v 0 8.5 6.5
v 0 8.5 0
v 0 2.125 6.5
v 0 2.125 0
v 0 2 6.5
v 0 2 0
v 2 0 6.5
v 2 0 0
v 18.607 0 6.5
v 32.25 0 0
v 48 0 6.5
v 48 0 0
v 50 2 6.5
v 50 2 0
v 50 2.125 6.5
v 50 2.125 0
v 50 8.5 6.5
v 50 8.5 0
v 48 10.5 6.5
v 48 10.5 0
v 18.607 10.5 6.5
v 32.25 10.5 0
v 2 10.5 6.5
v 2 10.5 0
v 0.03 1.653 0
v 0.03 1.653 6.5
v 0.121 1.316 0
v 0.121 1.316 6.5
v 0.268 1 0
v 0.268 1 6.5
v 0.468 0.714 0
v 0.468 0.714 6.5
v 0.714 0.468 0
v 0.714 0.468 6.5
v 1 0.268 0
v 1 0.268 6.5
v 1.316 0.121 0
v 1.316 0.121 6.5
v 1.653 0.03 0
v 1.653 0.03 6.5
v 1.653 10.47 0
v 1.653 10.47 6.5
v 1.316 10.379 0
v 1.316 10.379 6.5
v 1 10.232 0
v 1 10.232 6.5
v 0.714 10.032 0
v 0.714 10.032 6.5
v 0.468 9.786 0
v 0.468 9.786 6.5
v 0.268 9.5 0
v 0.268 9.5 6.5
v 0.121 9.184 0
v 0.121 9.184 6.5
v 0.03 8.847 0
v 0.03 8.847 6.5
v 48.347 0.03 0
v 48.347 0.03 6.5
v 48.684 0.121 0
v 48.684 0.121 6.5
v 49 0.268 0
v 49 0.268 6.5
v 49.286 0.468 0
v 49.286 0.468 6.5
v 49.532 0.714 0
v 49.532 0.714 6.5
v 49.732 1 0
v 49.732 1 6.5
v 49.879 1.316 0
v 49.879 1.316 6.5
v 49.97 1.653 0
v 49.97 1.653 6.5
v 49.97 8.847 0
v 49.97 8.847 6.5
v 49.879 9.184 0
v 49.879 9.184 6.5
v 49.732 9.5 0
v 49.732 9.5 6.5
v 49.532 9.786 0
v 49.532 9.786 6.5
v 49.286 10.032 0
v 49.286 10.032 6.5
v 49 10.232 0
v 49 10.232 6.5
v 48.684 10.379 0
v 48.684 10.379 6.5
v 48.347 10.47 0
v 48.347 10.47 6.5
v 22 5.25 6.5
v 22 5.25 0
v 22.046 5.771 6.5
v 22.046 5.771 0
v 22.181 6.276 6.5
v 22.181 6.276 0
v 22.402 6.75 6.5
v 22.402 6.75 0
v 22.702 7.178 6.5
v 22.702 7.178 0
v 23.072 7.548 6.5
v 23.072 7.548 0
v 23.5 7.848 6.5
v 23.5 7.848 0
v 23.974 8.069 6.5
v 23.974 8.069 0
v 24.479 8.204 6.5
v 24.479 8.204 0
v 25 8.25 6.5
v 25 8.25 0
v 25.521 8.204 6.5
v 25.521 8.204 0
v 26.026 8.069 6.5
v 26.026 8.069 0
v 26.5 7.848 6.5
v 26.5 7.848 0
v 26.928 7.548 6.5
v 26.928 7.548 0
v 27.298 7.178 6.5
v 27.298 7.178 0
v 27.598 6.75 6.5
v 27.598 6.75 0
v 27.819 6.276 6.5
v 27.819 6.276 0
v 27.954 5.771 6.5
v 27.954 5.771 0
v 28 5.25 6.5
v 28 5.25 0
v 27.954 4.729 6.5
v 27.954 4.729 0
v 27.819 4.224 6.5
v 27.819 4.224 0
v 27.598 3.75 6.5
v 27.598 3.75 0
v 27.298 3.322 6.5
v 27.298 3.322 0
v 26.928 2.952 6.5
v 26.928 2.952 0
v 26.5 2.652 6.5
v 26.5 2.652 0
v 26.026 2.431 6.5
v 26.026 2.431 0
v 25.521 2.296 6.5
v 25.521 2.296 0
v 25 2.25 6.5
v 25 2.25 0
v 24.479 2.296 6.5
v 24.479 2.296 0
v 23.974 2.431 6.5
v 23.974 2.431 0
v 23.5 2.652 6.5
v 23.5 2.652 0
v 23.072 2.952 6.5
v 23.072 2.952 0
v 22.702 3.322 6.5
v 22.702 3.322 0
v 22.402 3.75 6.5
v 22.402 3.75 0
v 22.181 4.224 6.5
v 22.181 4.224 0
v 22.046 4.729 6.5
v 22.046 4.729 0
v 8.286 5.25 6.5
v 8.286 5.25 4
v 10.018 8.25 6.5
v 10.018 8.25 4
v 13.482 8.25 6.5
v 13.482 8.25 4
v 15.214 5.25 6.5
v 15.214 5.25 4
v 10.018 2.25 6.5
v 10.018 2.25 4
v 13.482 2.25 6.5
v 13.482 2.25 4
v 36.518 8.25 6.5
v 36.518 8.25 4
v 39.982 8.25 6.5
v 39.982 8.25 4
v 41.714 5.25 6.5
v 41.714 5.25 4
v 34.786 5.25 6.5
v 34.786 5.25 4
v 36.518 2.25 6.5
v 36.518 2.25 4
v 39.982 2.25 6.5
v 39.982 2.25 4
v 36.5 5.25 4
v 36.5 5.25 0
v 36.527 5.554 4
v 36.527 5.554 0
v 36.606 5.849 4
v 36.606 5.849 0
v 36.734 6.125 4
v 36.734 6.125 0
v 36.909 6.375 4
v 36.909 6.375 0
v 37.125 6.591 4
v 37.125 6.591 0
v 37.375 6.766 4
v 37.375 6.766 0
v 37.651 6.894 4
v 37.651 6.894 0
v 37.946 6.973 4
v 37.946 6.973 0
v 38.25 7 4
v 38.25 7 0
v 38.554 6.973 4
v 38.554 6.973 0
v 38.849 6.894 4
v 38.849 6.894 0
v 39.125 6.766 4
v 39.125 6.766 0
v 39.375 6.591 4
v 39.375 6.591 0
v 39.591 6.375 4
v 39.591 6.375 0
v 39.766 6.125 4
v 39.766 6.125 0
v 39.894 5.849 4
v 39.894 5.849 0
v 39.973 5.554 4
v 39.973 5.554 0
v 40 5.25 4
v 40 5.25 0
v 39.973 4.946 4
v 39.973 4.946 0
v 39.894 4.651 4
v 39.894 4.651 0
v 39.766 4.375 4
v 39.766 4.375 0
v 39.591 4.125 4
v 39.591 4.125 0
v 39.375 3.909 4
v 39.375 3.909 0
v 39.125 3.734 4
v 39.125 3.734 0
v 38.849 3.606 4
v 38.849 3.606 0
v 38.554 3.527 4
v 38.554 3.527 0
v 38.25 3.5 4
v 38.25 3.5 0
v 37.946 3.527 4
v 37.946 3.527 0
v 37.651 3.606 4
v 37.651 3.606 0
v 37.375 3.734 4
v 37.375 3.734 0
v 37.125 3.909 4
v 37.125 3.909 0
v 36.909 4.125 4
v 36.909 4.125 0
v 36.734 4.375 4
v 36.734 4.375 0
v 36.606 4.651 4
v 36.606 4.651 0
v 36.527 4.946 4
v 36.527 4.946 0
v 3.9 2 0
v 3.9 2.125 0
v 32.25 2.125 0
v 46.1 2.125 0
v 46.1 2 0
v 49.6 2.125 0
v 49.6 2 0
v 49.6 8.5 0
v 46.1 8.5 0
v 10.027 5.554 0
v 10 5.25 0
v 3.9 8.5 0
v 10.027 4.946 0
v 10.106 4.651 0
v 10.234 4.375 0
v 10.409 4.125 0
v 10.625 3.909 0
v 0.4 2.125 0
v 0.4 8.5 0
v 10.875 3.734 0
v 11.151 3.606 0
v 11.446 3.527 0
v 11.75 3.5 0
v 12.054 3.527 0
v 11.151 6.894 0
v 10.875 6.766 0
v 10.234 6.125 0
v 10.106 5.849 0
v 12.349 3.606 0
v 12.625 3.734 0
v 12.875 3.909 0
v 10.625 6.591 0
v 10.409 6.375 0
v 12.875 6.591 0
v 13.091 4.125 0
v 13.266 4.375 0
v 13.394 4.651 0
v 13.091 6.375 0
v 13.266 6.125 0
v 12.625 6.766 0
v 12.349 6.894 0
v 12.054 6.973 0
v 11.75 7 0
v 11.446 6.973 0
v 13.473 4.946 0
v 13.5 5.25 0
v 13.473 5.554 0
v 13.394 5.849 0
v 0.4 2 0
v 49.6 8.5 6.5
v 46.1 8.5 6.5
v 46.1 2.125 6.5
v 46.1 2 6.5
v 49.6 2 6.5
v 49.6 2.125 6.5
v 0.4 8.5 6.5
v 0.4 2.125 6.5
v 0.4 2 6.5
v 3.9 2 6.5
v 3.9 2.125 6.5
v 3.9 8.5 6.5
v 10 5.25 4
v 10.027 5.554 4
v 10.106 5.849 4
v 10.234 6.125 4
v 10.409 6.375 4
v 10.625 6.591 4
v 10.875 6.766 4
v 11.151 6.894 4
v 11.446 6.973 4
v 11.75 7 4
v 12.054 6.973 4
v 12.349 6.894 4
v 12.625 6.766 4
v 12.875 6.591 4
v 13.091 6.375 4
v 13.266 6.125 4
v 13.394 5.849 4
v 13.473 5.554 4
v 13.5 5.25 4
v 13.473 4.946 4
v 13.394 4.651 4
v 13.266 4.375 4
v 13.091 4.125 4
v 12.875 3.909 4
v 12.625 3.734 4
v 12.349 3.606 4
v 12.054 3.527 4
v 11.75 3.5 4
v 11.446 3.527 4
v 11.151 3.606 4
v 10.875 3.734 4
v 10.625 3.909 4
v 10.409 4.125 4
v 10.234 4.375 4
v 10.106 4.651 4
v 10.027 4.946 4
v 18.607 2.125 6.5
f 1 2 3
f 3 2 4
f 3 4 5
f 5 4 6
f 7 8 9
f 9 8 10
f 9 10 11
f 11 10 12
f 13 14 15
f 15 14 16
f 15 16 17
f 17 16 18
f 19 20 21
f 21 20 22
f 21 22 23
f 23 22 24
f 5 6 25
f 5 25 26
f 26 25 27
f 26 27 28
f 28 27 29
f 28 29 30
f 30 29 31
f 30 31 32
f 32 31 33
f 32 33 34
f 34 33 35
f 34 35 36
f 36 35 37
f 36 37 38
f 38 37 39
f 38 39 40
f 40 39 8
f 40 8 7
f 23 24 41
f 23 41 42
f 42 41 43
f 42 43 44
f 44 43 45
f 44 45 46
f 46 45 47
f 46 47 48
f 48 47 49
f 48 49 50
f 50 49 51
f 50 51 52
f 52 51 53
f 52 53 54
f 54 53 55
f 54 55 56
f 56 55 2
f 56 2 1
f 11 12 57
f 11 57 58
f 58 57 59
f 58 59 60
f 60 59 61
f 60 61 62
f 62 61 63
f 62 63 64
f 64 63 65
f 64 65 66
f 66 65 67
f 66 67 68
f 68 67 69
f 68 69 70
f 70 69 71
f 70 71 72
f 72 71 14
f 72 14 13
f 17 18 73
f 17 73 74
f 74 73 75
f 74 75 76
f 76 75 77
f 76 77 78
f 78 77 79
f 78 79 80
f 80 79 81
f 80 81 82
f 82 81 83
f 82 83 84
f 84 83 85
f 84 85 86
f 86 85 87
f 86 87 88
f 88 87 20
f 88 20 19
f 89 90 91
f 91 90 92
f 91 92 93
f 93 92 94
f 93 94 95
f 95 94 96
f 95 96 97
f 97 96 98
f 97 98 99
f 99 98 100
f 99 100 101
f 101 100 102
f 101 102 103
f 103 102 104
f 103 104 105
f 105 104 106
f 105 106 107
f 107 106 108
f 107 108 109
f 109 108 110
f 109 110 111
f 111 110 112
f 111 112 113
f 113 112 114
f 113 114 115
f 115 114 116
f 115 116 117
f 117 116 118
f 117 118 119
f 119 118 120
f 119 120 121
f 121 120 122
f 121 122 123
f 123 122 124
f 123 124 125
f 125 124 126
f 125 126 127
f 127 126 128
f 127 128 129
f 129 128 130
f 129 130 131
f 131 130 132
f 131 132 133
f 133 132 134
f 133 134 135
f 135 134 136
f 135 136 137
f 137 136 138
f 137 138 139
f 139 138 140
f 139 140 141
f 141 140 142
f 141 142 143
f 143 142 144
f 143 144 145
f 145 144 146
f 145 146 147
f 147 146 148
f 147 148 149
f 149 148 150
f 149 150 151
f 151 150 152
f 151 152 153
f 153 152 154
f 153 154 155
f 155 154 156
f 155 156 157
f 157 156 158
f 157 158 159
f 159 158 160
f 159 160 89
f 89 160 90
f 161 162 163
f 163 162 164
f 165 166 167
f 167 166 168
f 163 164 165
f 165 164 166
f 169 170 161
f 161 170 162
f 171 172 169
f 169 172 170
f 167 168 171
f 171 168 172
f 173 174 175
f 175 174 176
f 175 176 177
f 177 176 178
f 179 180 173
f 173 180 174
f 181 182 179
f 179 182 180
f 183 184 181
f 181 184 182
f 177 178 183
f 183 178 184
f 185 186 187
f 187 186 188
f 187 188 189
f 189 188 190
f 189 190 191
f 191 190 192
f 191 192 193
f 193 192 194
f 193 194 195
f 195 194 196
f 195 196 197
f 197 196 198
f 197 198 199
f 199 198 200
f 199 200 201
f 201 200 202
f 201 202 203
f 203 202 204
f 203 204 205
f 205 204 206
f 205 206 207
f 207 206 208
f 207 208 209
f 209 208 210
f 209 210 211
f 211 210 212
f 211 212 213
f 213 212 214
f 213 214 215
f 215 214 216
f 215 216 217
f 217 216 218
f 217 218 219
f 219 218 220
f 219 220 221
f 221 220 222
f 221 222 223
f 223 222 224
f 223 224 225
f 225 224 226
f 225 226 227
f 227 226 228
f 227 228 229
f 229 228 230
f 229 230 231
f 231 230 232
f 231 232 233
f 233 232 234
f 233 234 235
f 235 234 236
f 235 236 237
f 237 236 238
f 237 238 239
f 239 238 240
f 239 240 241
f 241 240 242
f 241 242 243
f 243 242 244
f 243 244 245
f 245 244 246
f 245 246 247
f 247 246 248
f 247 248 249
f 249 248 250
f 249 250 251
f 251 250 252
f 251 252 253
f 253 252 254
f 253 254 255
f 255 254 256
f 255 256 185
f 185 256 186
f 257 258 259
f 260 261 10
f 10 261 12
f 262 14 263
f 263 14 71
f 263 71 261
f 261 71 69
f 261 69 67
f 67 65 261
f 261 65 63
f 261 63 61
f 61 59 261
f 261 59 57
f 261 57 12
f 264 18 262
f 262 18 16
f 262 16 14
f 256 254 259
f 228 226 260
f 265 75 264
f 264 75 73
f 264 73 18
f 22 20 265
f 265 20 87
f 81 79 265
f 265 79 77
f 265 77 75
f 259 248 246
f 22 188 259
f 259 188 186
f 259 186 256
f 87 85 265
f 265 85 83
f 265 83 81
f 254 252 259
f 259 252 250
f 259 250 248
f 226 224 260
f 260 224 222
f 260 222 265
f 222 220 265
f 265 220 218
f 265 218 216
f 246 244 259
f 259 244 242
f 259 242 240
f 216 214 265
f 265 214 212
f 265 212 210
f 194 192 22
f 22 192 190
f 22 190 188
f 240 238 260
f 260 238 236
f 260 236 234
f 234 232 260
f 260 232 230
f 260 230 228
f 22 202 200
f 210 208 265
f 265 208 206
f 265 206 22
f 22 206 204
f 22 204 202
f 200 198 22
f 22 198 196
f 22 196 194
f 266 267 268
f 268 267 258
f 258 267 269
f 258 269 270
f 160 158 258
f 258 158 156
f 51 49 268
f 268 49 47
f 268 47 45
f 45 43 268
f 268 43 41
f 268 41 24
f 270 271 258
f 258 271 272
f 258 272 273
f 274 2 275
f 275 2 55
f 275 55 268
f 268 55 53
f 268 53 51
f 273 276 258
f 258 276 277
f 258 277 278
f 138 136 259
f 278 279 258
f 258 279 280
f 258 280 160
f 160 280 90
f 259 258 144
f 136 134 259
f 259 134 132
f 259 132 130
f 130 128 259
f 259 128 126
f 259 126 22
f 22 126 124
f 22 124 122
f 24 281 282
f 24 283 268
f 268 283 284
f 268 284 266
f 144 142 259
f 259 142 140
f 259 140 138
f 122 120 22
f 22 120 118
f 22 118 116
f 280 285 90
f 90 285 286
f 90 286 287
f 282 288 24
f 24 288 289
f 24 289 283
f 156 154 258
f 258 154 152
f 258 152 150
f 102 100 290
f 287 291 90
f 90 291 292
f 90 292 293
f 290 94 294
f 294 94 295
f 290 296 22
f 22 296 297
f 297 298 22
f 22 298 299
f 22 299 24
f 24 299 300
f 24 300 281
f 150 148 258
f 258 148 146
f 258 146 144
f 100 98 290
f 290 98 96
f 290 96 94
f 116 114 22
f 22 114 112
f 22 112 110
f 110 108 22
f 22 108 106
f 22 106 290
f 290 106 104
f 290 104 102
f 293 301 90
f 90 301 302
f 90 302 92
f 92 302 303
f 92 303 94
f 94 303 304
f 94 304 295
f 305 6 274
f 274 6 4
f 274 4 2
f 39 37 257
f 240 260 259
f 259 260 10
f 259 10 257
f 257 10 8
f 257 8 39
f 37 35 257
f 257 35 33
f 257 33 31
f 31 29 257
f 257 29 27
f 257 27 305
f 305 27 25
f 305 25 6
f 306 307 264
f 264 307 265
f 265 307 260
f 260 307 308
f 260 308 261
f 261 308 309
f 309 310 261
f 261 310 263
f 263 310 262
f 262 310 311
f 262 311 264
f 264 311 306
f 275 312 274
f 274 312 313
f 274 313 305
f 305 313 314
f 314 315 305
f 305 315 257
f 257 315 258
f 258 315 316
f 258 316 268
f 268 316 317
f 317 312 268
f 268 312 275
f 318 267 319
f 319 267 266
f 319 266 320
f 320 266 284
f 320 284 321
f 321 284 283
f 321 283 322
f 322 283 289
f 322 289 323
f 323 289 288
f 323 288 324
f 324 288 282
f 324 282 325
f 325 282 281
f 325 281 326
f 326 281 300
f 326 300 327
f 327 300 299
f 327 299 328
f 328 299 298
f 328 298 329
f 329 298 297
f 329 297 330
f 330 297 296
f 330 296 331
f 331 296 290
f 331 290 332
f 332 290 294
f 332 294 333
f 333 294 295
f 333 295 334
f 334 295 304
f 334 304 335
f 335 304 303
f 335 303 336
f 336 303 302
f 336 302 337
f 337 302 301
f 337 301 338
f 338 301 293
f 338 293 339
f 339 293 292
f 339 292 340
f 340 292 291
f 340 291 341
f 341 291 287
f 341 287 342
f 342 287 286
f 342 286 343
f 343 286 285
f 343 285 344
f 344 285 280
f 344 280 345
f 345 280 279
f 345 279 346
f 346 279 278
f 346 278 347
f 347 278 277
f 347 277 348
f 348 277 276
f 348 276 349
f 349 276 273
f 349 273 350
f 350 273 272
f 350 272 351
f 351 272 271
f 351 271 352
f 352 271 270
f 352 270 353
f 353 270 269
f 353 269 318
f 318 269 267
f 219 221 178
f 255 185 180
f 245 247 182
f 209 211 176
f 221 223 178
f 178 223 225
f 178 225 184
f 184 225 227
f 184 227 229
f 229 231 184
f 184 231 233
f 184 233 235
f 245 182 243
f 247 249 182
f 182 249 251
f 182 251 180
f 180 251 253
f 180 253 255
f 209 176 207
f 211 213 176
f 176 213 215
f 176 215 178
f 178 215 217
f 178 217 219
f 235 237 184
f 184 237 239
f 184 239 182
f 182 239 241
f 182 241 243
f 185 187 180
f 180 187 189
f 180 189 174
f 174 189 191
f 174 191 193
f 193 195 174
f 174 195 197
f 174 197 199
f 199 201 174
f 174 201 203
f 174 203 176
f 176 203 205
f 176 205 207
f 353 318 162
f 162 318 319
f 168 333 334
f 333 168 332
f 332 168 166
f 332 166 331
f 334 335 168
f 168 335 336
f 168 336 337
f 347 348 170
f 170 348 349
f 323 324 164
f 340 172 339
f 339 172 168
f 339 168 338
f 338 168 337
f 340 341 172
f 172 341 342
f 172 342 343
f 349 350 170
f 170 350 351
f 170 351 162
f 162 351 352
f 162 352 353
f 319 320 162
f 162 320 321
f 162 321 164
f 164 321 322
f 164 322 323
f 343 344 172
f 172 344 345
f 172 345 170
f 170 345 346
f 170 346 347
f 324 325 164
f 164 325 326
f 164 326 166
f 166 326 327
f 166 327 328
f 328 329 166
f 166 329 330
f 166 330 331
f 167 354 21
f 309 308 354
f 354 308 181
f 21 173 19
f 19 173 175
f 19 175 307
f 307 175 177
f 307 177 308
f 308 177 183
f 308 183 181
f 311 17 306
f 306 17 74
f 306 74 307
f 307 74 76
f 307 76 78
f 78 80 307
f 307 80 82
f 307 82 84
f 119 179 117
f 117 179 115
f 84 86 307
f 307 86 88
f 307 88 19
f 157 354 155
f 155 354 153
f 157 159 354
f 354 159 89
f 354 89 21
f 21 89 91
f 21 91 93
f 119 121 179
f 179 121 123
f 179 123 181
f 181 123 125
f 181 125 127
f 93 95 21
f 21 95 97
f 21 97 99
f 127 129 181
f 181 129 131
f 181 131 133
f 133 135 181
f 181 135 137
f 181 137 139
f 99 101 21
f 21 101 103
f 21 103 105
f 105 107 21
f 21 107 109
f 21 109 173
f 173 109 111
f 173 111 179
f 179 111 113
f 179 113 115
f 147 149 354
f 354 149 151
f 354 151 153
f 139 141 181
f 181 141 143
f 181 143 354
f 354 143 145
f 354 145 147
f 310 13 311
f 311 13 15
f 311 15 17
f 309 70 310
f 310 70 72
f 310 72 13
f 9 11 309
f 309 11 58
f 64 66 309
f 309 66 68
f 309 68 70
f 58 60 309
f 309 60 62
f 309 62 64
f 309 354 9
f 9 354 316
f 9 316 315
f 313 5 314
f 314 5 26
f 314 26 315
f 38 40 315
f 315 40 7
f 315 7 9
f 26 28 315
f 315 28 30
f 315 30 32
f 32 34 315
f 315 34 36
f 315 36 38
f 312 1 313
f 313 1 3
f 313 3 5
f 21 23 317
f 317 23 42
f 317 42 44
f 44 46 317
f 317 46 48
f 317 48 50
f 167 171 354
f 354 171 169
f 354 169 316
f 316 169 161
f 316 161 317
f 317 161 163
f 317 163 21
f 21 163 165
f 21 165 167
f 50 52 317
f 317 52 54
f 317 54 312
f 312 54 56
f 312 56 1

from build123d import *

# Parameters (mm, degrees)
SKETCH_1_W          = 50
SKETCH_1_H          = 10.5
EXTRUDE_1_DEPTH     = 17
SKETCH_2_W          = 36
SKETCH_2_H          = 3.5
CUT_EXTRUDE_1_DEPTH = 10
CUT_EXTRUDE_2_DEPTH = 10.5
SKETCH_4_W          = 3.5
SKETCH_4_H          = 6.5
CUT_EXTRUDE_3_DEPTH = 6.5
FILLET_1_R          = 2
SKETCH_6_R          = 3
SKETCH_6_R_2        = 1.75
CUT_EXTRUDE_4_DEPTH = 18
CUT_EXTRUDE_5_DEPTH = 11
CUT_EXTRUDE_6_DEPTH = 3
SKETCH_9_W          = 58.421136066
SKETCH_9_H          = 24.245128271
CUT_EXTRUDE_7_DEPTH = 11.5


with BuildPart() as part:
    # ｽｹｯﾁ1 → ﾎﾞｽ - 押し出し1 (new body)
    with BuildSketch(Plane.XY):
        with Locations((25, 5.25)):
            Rectangle(SKETCH_1_W, SKETCH_1_H)
    extrude(amount=EXTRUDE_1_DEPTH)

    # ｽｹｯﾁ2 → ｶｯﾄ - 押し出し1 (cut)
    with BuildSketch(Plane.XY.offset(17)):
        with Locations((25, 5.25)):
            Rectangle(SKETCH_2_W, SKETCH_2_H)
    extrude(amount=-CUT_EXTRUDE_1_DEPTH, mode=Mode.SUBTRACT)

    # ｽｹｯﾁ3 → ｶｯﾄ - 押し出し2 (cut)
    with BuildSketch(Plane.XZ):
        Polygon((1, 17), (3, 12), (7, 12), (17, 17), align=None)
        Polygon((33, 17), (43, 12), (47, 12), (49, 17), align=None)
    extrude(amount=-CUT_EXTRUDE_2_DEPTH, mode=Mode.SUBTRACT)

    # ｽｹｯﾁ4 → ｶｯﾄ - 押し出し3 (cut)
    with BuildSketch(Plane(origin=(0, 0, 0), x_dir=(-1, 0, 0), z_dir=(0, 0, -1))):
        with Locations((-2.15, 5.25)):
            Rectangle(SKETCH_4_W, SKETCH_4_H)
        with Locations((-47.85, 5.25)):
            Rectangle(SKETCH_4_W, SKETCH_4_H)
    extrude(amount=-CUT_EXTRUDE_3_DEPTH, mode=Mode.SUBTRACT)

    # ﾌｨﾚｯﾄ1
    fillet_1_edges = [part.edges().sort_by_distance(p)[0] for p in [
        (0, 0, 8.5),
        (0, 10.5, 8.5),
        (50, 0, 8.5),
        (50, 10.5, 8.5),
    ]]
    fillet(fillet_1_edges, radius=FILLET_1_R)

    # ｽｹｯﾁ6 → ｶｯﾄ - 押し出し4 (cut, through all)
    with BuildSketch(Plane(origin=(0, 0, 0), x_dir=(-1, 0, 0), z_dir=(0, 0, -1))):
        with Locations((-25, 5.25)):
            Circle(SKETCH_6_R)
        with Locations((-11.75, 5.25)):
            Circle(SKETCH_6_R_2)
        with Locations((-38.25, 5.25)):
            Circle(SKETCH_6_R_2)
    extrude(amount=-CUT_EXTRUDE_4_DEPTH, mode=Mode.SUBTRACT)

    # ｽｹｯﾁ7 → ｶｯﾄ - 押し出し5 (cut, through all)
    with BuildSketch(Plane.XY.offset(7)):
        Polygon((34.785898385, 5.25), (36.517949192, 2.25), (39.982050808, 2.25), (41.714101615, 5.25), (39.982050808, 8.25), (36.517949192, 8.25), align=None)
        Polygon((13.482050808, 8.25), (15.214101615, 5.25), (13.482050808, 2.25), (10.017949192, 2.25), (8.285898385, 5.25), (10.017949192, 8.25), align=None)
    extrude(amount=CUT_EXTRUDE_5_DEPTH, mode=Mode.SUBTRACT)

    # ｽｹｯﾁ8 → ｶｯﾄ - 押し出し6 (cut)
    with BuildSketch(Plane.XY.offset(7)):
        Polygon((36.517949192, 2.25), (39.982050808, 2.25), (41.714101615, 5.25), (39.982050808, 8.25), (36.517949192, 8.25), (34.785898385, 5.25), align=None)
        Polygon((15.214101615, 5.25), (13.482050808, 2.25), (10.017949192, 2.25), (8.285898385, 5.25), (10.017949192, 8.25), (13.482050808, 8.25), align=None)
    extrude(amount=-CUT_EXTRUDE_6_DEPTH, mode=Mode.SUBTRACT)

    # ｽｹｯﾁ9 → ｶｯﾄ - 押し出し7 (cut, through all)
    with BuildSketch(Plane(origin=(0, 0, 6.5), x_dir=(-1, 0, 0), z_dir=(0, 0, -1))):
        with Locations((-24.970881096, 5.810967265)):
            Rectangle(SKETCH_9_W, SKETCH_9_H)
    extrude(amount=-CUT_EXTRUDE_7_DEPTH, mode=Mode.SUBTRACT)


solid = part.part
